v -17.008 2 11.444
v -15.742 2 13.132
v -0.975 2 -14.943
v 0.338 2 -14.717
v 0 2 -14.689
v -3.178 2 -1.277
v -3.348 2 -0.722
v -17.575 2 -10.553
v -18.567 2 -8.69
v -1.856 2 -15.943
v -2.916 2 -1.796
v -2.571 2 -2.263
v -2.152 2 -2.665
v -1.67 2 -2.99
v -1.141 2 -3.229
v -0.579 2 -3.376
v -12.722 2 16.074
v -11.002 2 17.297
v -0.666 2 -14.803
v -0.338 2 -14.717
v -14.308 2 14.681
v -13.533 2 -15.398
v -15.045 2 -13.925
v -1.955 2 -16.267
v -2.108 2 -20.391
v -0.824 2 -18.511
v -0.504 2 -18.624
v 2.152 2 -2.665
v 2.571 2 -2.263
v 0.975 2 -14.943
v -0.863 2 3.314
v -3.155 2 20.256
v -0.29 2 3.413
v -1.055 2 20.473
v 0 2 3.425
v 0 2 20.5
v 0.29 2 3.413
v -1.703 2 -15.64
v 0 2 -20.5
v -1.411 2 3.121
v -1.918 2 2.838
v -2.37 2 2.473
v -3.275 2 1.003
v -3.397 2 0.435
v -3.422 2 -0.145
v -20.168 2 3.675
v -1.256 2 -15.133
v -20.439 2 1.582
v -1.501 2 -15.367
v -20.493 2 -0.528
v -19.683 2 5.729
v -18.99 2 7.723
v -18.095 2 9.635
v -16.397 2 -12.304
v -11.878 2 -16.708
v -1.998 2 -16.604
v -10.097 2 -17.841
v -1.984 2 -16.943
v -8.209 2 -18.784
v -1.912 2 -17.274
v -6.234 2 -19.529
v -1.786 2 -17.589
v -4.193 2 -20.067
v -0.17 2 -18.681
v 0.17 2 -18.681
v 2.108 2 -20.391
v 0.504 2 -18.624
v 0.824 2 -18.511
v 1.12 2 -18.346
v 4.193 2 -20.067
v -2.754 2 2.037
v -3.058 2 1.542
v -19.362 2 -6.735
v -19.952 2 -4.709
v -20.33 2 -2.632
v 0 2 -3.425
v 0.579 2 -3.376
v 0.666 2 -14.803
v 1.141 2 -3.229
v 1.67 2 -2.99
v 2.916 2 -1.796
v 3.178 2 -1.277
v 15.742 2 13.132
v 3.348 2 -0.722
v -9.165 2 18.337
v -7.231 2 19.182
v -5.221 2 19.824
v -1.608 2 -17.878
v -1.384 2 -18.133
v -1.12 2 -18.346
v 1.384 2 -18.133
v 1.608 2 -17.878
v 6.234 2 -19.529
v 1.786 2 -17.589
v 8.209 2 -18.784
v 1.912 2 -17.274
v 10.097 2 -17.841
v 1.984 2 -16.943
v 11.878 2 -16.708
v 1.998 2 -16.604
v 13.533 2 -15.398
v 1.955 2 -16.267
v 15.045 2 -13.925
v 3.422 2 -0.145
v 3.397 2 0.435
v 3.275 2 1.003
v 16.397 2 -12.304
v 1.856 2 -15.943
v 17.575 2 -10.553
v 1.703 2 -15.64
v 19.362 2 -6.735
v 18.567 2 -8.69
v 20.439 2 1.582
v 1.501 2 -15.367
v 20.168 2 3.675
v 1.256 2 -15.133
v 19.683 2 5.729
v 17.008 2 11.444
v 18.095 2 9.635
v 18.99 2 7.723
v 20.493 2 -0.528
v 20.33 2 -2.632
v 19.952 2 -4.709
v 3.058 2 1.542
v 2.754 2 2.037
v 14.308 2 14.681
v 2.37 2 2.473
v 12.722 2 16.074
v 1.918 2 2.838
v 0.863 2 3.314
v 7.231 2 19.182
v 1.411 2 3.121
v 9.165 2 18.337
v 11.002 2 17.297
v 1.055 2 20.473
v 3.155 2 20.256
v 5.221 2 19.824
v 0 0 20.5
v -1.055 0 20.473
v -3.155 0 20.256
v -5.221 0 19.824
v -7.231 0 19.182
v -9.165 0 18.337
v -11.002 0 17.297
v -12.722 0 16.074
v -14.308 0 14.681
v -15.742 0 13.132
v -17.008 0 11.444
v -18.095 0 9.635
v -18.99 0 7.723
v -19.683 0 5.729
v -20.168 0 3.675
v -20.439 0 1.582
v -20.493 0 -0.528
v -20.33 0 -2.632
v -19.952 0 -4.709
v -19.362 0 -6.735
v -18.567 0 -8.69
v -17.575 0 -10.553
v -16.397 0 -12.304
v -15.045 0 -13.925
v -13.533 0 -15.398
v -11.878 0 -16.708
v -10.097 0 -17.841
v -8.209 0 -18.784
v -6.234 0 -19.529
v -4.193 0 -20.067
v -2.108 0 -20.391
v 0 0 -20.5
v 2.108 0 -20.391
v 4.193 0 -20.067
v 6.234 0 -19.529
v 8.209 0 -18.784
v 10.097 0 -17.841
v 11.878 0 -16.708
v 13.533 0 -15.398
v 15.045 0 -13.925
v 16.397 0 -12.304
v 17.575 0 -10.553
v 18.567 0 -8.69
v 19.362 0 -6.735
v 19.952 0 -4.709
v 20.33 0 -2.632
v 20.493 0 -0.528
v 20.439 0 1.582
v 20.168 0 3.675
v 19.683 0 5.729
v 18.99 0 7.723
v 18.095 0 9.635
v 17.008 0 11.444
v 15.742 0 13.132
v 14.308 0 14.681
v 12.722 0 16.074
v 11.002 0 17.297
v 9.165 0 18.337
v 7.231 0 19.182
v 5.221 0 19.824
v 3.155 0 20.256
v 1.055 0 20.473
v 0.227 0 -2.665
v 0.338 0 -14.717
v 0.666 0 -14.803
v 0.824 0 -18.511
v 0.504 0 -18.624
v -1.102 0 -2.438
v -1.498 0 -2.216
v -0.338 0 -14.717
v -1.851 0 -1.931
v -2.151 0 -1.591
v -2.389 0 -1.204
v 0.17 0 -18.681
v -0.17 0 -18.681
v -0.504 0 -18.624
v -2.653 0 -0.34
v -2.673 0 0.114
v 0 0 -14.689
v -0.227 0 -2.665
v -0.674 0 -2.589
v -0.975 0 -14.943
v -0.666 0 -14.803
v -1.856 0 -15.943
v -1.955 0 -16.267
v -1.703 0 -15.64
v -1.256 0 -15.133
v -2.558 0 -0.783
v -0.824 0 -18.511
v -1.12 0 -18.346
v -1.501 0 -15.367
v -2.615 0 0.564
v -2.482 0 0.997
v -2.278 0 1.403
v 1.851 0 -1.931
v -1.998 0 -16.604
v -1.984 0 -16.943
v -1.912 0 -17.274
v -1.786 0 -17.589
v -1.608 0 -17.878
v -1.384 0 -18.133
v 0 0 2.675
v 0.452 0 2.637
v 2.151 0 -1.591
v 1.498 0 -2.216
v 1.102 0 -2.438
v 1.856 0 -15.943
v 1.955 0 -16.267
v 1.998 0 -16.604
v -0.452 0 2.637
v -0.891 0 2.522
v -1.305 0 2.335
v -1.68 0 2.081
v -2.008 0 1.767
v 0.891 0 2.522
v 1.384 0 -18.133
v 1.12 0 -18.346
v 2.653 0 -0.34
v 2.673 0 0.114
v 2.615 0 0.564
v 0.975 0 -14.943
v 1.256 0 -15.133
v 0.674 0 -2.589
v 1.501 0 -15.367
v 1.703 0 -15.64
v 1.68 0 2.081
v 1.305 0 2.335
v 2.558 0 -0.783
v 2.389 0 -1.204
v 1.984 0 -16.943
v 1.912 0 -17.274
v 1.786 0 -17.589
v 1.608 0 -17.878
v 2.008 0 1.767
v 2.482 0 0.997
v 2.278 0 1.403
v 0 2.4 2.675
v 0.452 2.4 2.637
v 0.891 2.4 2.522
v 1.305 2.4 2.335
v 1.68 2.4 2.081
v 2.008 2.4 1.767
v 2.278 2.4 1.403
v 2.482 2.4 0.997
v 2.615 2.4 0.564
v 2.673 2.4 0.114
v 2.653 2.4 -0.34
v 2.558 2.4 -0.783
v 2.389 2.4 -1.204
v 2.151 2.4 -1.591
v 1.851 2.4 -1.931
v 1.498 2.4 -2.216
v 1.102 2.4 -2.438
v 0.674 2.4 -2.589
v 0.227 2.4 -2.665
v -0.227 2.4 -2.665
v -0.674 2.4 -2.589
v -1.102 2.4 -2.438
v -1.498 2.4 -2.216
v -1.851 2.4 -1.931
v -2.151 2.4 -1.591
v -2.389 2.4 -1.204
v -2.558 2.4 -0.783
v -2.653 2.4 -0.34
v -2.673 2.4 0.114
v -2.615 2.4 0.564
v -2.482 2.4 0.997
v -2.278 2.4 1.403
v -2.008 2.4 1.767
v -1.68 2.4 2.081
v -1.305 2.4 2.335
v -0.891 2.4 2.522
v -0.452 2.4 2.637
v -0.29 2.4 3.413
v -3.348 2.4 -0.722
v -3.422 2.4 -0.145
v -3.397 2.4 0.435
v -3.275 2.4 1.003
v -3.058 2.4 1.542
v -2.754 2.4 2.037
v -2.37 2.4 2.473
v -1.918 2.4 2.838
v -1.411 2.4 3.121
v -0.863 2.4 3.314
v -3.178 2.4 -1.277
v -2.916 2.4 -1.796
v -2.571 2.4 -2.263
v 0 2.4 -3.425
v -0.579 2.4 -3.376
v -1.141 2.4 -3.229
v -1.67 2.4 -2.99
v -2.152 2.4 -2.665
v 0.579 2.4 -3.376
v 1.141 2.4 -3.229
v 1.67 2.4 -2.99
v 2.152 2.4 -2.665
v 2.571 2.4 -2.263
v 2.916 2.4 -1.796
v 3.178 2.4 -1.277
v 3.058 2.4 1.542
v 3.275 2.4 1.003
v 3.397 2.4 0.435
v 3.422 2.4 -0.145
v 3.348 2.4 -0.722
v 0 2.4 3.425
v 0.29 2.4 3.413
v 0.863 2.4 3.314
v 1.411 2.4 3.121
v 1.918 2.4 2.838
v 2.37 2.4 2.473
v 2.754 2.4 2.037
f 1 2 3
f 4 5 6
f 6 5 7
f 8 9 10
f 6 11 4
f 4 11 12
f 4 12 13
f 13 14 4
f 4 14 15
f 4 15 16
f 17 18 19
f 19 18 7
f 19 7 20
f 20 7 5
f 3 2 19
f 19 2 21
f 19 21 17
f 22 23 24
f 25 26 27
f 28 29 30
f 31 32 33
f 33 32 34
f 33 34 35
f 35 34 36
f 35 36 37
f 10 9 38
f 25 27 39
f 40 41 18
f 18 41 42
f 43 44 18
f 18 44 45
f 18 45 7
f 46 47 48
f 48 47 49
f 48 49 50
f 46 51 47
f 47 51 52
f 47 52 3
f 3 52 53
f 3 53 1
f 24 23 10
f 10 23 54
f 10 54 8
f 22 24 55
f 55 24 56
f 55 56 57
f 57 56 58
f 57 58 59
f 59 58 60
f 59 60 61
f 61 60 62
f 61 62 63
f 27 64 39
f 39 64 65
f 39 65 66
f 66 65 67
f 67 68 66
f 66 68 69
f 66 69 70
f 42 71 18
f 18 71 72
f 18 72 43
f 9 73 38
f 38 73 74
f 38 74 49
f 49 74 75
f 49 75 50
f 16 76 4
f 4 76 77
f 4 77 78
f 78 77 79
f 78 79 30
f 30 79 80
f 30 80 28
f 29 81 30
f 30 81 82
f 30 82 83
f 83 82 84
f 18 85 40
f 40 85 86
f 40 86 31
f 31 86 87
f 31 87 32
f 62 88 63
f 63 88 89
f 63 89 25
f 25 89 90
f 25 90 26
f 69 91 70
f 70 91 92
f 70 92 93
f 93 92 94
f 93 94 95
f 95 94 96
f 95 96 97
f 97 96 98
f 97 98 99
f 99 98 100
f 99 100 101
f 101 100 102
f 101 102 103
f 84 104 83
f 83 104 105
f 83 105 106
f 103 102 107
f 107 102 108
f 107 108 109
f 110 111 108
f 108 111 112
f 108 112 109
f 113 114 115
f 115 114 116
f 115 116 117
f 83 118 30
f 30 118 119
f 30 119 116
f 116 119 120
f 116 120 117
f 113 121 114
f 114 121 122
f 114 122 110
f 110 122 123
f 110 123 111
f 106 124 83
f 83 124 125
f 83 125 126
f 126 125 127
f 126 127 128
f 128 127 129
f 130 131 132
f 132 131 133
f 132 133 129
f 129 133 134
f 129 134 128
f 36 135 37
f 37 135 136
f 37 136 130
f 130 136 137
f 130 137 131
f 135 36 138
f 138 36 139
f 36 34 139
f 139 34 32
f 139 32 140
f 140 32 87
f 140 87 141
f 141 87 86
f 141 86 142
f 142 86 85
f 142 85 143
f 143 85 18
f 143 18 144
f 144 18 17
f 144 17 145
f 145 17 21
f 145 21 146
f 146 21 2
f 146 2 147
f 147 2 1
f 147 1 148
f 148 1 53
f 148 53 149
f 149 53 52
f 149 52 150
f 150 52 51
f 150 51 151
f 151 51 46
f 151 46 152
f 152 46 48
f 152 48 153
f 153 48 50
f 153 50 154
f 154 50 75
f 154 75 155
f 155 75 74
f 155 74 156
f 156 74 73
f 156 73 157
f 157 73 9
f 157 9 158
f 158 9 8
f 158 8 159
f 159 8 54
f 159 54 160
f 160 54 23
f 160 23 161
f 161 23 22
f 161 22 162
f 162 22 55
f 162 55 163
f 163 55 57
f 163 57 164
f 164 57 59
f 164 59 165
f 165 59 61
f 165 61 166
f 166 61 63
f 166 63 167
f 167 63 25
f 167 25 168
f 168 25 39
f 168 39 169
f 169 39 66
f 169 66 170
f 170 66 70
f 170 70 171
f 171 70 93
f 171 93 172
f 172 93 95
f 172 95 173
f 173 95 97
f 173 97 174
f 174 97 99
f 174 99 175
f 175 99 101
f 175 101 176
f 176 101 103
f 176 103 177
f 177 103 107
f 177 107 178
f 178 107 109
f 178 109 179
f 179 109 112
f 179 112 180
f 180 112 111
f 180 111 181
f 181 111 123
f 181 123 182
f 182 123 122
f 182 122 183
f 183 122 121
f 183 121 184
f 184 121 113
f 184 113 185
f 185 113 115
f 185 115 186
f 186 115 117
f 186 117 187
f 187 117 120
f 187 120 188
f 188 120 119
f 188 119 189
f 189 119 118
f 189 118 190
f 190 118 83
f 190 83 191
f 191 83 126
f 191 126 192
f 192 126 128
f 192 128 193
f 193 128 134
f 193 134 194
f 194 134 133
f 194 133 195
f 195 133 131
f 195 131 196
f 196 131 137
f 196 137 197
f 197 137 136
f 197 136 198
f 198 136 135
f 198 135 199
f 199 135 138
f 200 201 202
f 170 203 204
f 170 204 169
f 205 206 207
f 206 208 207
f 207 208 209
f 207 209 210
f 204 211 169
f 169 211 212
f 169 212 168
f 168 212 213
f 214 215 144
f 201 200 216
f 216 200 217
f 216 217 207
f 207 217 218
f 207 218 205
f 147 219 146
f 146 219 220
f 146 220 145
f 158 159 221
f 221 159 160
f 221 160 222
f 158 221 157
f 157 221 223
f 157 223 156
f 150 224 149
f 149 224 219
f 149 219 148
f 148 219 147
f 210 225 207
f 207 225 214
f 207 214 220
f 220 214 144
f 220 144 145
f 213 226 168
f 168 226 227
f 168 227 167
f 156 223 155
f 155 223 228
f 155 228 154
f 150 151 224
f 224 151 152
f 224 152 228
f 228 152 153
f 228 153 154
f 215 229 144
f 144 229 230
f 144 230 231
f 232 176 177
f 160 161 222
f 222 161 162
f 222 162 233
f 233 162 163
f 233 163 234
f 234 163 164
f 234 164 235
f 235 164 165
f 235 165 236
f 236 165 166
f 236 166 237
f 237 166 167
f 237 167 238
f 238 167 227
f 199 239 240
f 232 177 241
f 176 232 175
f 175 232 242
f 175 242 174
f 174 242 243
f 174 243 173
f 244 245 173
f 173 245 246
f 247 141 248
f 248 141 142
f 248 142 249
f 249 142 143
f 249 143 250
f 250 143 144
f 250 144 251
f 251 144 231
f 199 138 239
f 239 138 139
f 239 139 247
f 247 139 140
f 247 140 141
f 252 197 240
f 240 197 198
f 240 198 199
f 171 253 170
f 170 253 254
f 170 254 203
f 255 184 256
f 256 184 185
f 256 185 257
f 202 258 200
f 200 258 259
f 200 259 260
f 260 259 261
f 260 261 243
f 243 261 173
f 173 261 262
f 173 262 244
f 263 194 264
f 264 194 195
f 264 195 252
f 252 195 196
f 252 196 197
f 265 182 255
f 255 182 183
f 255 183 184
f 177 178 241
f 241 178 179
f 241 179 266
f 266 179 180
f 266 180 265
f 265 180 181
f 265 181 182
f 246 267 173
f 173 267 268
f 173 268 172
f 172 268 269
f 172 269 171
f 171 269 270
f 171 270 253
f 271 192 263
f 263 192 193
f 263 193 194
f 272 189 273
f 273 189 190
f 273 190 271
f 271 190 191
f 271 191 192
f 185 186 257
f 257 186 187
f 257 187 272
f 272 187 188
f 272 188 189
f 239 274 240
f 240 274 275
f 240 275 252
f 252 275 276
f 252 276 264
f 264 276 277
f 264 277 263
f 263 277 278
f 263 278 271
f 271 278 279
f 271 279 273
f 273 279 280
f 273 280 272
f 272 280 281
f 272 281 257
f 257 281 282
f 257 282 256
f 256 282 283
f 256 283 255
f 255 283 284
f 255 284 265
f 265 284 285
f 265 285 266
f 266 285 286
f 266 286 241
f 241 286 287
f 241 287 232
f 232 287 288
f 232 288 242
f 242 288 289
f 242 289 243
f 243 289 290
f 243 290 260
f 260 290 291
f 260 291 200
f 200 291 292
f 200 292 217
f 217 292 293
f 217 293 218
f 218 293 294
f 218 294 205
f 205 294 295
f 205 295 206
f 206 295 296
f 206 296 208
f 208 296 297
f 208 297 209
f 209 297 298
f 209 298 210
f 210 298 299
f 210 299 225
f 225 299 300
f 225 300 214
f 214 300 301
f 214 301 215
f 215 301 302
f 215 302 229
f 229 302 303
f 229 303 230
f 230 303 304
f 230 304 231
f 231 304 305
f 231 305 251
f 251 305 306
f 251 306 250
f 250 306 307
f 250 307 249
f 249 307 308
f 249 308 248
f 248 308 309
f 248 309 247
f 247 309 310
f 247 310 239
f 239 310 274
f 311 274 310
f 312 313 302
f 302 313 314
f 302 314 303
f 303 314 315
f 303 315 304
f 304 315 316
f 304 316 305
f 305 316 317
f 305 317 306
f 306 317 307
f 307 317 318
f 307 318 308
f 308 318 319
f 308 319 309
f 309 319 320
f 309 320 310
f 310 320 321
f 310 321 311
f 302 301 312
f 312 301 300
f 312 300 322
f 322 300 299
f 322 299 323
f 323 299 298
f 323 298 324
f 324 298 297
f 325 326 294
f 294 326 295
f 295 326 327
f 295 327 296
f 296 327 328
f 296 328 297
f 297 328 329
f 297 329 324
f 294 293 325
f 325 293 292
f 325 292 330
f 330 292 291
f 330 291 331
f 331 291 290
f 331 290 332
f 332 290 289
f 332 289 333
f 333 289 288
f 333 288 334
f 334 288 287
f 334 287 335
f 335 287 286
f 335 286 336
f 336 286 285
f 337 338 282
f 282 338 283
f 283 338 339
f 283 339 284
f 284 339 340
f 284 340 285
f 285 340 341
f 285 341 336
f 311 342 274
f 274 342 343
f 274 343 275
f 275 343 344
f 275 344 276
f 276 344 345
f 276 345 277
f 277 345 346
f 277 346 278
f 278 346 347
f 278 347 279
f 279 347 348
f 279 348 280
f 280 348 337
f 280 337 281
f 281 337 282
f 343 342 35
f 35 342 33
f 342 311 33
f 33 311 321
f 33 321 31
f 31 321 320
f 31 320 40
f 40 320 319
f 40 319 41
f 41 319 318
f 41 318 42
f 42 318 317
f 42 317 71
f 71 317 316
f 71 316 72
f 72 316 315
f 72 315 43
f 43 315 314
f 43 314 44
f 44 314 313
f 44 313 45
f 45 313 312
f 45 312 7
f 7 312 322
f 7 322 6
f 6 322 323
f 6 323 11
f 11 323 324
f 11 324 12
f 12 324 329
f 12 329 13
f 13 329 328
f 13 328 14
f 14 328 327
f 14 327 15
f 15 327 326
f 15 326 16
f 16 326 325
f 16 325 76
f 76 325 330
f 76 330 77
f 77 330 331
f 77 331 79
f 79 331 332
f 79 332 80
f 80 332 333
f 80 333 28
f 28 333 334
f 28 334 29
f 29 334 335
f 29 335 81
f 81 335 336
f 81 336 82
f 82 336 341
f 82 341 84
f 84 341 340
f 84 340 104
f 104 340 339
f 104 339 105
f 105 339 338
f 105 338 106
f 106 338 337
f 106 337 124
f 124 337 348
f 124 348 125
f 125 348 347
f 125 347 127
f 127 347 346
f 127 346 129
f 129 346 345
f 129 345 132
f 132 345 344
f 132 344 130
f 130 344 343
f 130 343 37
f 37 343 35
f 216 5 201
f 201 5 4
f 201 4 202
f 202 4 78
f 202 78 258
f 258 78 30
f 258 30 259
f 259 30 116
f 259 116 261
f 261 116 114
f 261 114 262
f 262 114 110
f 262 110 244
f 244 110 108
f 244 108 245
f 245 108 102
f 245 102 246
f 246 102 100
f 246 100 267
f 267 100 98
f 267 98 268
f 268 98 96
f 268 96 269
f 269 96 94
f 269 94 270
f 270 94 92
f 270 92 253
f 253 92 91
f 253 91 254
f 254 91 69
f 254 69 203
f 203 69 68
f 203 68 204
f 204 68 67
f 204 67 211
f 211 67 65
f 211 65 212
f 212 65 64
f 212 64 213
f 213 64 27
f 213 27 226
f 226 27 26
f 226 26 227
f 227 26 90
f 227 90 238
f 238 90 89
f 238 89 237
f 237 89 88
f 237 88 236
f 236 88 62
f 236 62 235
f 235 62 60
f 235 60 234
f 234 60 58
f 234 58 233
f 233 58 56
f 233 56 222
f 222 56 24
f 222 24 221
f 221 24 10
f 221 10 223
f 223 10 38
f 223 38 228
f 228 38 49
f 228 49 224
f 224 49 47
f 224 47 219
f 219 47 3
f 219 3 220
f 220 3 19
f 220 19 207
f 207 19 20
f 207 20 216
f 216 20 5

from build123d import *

# Parameters (mm, degrees)
SKETCH1_R           = 20.5
BOSS_EXTRUDE1_DEPTH = 2
SKETCH2_R           = 2.675
CUT_EXTRUDE1_DEPTH  = 2
BOSS_EXTRUDE2_START = 0.4
SKETCH3_R           = 3.425
SKETCH3_R_2         = 2.675
BOSS_EXTRUDE2_DEPTH = 0.4
SKETCH4_R           = 2
CUT_EXTRUDE2_DEPTH  = 2


with BuildPart() as part:
    # Sketch1 → Boss-Extrude1 (new body)
    with BuildSketch(Plane(origin=(0, 0, 0), x_dir=(1, 0, 0), z_dir=(0, 1, 0))):
        with Locations(Location((0, 0, 0), (0, 0, 270))):
            Circle(SKETCH1_R)
    extrude(amount=BOSS_EXTRUDE1_DEPTH)

    # Sketch2 → Cut-Extrude1 (cut)
    with BuildSketch(Plane(origin=(0, 2, 0), x_dir=(1, 0, 0), z_dir=(0, 1, 0))):
        with Locations(Location((0, 0, 0), (0, 0, 270))):
            Circle(SKETCH2_R)
    extrude(amount=-CUT_EXTRUDE1_DEPTH, mode=Mode.SUBTRACT)

    # Sketch3 → Boss-Extrude2 (add)
    with BuildSketch(Plane(origin=(0, 2, 0), x_dir=(1, 0, 0), z_dir=(0, 1, 0)).offset(BOSS_EXTRUDE2_START)):
        with Locations(Location((0, 0, 0), (0, 0, 270))):
            Circle(SKETCH3_R)
        with Locations(Location((0, 0, 0), (0, 0, 270))):
            Circle(SKETCH3_R_2, mode=Mode.SUBTRACT)
    extrude(amount=-BOSS_EXTRUDE2_DEPTH)

    # Sketch4 → Cut-Extrude2 (cut)
    with BuildSketch(Plane(origin=(0, 2, 0), x_dir=(1, 0, 0), z_dir=(0, 1, 0))):
        with Locations(Location((0, 16.68859089, 0), (0, 0, 270))):
            Circle(SKETCH4_R)
    extrude(amount=-CUT_EXTRUDE2_DEPTH, mode=Mode.SUBTRACT)


solid = part.part
